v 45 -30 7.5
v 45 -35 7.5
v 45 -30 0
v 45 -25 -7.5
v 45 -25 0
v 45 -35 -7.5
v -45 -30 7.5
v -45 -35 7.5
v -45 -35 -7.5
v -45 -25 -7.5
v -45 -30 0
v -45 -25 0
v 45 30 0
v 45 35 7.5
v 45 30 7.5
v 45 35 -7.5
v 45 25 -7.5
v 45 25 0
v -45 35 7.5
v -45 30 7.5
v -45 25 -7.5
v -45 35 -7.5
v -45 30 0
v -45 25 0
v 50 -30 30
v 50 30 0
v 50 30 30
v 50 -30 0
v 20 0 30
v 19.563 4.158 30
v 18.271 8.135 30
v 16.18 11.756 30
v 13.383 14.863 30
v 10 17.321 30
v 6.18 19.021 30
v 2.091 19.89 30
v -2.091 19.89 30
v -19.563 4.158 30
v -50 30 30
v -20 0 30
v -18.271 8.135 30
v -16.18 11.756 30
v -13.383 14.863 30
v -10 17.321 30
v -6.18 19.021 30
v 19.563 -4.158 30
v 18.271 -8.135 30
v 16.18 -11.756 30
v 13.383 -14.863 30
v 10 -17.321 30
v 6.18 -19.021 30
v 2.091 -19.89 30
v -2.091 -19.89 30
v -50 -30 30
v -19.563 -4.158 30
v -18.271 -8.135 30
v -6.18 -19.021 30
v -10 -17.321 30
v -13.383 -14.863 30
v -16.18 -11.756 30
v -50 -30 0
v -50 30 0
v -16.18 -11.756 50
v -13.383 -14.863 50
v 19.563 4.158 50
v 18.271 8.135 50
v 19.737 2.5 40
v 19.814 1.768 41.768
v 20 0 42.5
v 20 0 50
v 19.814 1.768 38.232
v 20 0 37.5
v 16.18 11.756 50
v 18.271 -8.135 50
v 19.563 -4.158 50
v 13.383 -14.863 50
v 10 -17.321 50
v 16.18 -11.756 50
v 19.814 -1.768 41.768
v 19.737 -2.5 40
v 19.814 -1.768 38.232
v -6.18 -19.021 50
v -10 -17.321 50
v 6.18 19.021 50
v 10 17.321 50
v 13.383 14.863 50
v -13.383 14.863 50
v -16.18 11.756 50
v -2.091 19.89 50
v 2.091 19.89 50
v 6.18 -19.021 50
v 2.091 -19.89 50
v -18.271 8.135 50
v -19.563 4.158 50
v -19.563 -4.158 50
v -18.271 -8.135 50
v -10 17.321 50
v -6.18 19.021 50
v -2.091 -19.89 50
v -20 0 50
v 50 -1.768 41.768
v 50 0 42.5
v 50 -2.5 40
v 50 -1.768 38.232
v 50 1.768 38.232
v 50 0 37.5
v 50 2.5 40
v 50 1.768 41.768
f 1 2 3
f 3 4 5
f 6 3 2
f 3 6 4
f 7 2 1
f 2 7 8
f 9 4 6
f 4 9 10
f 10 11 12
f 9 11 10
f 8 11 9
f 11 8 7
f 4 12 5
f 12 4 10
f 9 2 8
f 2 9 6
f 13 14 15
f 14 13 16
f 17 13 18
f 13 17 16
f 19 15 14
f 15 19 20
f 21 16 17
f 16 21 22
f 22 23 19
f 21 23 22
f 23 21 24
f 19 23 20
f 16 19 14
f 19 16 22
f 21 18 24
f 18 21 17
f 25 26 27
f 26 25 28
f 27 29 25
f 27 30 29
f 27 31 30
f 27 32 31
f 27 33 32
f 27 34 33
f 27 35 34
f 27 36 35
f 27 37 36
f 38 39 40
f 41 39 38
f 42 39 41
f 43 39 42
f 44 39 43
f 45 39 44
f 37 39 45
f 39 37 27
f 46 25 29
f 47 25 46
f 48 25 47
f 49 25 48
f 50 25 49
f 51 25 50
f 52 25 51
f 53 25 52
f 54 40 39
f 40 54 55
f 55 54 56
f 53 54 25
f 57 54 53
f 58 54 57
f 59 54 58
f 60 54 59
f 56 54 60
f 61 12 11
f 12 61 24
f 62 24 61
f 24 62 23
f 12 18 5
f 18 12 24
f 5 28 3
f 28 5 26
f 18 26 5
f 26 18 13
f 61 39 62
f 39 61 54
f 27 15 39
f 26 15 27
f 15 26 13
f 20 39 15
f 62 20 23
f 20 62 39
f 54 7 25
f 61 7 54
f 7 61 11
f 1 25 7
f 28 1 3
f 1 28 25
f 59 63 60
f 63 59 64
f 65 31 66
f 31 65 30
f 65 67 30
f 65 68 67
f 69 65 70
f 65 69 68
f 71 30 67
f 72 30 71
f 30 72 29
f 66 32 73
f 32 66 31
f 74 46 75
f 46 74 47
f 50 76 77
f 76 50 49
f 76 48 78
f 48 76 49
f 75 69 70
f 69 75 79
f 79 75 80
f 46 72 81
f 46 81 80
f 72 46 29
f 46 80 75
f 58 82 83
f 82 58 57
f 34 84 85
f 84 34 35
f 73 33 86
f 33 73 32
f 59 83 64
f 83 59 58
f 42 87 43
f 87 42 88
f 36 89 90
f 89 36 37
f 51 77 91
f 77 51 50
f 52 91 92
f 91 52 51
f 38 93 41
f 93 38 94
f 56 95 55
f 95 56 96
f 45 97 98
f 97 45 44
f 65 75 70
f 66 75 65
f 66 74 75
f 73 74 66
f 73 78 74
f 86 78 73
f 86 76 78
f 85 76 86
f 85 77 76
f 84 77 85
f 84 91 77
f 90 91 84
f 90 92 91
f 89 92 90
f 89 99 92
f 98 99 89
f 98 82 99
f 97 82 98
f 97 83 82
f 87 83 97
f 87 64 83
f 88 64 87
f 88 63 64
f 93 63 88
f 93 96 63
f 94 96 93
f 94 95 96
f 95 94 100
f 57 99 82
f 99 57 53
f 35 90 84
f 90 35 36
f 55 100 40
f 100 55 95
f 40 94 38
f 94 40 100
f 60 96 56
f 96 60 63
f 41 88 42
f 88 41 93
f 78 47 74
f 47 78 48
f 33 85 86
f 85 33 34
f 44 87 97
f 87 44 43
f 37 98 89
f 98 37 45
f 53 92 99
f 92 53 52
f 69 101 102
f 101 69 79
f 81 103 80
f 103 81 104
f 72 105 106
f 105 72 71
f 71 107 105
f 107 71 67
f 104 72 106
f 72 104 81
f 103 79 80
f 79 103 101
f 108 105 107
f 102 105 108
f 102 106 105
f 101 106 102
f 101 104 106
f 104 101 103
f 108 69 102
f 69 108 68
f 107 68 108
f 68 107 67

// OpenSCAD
// Simple Tank Model in OpenSCAD

// Tank dimensions
tank_length = 100;
tank_width = 60;
tank_height = 30;
turret_diameter = 40;
turret_height = 20;
barrel_length = 50;
barrel_diameter = 5;

// Tank body
module tank_body() {
    hull();
    tracks();
}

// Hull
module hull() {
    translate([0, 0, tank_height / 2])
        cube([tank_length, tank_width, tank_height], true);
}

// Tracks
module tracks() {
    track_width = 10;
    track_height = tank_height/2;
    track_length = tank_length * 0.9;

    translate([0, -tank_width / 2, 0])
        cube([track_length, track_width, track_height], true);

    translate([0, tank_width / 2, 0])
        cube([track_length, track_width, track_height], true);
}

// Turret
module turret() {
    translate([0, 0, tank_height + turret_height / 2])
        cylinder(h = turret_height, r = turret_diameter / 2, center = true);
}

// Barrel
module barrel() {
    translate([0, 0, tank_height + turret_height])
        rotate([0, 90, 0])
        translate([(turret_height / 2 ), 0, (barrel_length/2)])
        cylinder(h = barrel_length, r = barrel_diameter / 2, center = true);
}

// Assemble the tank
module tank() {
    tank_body();
    turret();
    barrel();
}

tank();
